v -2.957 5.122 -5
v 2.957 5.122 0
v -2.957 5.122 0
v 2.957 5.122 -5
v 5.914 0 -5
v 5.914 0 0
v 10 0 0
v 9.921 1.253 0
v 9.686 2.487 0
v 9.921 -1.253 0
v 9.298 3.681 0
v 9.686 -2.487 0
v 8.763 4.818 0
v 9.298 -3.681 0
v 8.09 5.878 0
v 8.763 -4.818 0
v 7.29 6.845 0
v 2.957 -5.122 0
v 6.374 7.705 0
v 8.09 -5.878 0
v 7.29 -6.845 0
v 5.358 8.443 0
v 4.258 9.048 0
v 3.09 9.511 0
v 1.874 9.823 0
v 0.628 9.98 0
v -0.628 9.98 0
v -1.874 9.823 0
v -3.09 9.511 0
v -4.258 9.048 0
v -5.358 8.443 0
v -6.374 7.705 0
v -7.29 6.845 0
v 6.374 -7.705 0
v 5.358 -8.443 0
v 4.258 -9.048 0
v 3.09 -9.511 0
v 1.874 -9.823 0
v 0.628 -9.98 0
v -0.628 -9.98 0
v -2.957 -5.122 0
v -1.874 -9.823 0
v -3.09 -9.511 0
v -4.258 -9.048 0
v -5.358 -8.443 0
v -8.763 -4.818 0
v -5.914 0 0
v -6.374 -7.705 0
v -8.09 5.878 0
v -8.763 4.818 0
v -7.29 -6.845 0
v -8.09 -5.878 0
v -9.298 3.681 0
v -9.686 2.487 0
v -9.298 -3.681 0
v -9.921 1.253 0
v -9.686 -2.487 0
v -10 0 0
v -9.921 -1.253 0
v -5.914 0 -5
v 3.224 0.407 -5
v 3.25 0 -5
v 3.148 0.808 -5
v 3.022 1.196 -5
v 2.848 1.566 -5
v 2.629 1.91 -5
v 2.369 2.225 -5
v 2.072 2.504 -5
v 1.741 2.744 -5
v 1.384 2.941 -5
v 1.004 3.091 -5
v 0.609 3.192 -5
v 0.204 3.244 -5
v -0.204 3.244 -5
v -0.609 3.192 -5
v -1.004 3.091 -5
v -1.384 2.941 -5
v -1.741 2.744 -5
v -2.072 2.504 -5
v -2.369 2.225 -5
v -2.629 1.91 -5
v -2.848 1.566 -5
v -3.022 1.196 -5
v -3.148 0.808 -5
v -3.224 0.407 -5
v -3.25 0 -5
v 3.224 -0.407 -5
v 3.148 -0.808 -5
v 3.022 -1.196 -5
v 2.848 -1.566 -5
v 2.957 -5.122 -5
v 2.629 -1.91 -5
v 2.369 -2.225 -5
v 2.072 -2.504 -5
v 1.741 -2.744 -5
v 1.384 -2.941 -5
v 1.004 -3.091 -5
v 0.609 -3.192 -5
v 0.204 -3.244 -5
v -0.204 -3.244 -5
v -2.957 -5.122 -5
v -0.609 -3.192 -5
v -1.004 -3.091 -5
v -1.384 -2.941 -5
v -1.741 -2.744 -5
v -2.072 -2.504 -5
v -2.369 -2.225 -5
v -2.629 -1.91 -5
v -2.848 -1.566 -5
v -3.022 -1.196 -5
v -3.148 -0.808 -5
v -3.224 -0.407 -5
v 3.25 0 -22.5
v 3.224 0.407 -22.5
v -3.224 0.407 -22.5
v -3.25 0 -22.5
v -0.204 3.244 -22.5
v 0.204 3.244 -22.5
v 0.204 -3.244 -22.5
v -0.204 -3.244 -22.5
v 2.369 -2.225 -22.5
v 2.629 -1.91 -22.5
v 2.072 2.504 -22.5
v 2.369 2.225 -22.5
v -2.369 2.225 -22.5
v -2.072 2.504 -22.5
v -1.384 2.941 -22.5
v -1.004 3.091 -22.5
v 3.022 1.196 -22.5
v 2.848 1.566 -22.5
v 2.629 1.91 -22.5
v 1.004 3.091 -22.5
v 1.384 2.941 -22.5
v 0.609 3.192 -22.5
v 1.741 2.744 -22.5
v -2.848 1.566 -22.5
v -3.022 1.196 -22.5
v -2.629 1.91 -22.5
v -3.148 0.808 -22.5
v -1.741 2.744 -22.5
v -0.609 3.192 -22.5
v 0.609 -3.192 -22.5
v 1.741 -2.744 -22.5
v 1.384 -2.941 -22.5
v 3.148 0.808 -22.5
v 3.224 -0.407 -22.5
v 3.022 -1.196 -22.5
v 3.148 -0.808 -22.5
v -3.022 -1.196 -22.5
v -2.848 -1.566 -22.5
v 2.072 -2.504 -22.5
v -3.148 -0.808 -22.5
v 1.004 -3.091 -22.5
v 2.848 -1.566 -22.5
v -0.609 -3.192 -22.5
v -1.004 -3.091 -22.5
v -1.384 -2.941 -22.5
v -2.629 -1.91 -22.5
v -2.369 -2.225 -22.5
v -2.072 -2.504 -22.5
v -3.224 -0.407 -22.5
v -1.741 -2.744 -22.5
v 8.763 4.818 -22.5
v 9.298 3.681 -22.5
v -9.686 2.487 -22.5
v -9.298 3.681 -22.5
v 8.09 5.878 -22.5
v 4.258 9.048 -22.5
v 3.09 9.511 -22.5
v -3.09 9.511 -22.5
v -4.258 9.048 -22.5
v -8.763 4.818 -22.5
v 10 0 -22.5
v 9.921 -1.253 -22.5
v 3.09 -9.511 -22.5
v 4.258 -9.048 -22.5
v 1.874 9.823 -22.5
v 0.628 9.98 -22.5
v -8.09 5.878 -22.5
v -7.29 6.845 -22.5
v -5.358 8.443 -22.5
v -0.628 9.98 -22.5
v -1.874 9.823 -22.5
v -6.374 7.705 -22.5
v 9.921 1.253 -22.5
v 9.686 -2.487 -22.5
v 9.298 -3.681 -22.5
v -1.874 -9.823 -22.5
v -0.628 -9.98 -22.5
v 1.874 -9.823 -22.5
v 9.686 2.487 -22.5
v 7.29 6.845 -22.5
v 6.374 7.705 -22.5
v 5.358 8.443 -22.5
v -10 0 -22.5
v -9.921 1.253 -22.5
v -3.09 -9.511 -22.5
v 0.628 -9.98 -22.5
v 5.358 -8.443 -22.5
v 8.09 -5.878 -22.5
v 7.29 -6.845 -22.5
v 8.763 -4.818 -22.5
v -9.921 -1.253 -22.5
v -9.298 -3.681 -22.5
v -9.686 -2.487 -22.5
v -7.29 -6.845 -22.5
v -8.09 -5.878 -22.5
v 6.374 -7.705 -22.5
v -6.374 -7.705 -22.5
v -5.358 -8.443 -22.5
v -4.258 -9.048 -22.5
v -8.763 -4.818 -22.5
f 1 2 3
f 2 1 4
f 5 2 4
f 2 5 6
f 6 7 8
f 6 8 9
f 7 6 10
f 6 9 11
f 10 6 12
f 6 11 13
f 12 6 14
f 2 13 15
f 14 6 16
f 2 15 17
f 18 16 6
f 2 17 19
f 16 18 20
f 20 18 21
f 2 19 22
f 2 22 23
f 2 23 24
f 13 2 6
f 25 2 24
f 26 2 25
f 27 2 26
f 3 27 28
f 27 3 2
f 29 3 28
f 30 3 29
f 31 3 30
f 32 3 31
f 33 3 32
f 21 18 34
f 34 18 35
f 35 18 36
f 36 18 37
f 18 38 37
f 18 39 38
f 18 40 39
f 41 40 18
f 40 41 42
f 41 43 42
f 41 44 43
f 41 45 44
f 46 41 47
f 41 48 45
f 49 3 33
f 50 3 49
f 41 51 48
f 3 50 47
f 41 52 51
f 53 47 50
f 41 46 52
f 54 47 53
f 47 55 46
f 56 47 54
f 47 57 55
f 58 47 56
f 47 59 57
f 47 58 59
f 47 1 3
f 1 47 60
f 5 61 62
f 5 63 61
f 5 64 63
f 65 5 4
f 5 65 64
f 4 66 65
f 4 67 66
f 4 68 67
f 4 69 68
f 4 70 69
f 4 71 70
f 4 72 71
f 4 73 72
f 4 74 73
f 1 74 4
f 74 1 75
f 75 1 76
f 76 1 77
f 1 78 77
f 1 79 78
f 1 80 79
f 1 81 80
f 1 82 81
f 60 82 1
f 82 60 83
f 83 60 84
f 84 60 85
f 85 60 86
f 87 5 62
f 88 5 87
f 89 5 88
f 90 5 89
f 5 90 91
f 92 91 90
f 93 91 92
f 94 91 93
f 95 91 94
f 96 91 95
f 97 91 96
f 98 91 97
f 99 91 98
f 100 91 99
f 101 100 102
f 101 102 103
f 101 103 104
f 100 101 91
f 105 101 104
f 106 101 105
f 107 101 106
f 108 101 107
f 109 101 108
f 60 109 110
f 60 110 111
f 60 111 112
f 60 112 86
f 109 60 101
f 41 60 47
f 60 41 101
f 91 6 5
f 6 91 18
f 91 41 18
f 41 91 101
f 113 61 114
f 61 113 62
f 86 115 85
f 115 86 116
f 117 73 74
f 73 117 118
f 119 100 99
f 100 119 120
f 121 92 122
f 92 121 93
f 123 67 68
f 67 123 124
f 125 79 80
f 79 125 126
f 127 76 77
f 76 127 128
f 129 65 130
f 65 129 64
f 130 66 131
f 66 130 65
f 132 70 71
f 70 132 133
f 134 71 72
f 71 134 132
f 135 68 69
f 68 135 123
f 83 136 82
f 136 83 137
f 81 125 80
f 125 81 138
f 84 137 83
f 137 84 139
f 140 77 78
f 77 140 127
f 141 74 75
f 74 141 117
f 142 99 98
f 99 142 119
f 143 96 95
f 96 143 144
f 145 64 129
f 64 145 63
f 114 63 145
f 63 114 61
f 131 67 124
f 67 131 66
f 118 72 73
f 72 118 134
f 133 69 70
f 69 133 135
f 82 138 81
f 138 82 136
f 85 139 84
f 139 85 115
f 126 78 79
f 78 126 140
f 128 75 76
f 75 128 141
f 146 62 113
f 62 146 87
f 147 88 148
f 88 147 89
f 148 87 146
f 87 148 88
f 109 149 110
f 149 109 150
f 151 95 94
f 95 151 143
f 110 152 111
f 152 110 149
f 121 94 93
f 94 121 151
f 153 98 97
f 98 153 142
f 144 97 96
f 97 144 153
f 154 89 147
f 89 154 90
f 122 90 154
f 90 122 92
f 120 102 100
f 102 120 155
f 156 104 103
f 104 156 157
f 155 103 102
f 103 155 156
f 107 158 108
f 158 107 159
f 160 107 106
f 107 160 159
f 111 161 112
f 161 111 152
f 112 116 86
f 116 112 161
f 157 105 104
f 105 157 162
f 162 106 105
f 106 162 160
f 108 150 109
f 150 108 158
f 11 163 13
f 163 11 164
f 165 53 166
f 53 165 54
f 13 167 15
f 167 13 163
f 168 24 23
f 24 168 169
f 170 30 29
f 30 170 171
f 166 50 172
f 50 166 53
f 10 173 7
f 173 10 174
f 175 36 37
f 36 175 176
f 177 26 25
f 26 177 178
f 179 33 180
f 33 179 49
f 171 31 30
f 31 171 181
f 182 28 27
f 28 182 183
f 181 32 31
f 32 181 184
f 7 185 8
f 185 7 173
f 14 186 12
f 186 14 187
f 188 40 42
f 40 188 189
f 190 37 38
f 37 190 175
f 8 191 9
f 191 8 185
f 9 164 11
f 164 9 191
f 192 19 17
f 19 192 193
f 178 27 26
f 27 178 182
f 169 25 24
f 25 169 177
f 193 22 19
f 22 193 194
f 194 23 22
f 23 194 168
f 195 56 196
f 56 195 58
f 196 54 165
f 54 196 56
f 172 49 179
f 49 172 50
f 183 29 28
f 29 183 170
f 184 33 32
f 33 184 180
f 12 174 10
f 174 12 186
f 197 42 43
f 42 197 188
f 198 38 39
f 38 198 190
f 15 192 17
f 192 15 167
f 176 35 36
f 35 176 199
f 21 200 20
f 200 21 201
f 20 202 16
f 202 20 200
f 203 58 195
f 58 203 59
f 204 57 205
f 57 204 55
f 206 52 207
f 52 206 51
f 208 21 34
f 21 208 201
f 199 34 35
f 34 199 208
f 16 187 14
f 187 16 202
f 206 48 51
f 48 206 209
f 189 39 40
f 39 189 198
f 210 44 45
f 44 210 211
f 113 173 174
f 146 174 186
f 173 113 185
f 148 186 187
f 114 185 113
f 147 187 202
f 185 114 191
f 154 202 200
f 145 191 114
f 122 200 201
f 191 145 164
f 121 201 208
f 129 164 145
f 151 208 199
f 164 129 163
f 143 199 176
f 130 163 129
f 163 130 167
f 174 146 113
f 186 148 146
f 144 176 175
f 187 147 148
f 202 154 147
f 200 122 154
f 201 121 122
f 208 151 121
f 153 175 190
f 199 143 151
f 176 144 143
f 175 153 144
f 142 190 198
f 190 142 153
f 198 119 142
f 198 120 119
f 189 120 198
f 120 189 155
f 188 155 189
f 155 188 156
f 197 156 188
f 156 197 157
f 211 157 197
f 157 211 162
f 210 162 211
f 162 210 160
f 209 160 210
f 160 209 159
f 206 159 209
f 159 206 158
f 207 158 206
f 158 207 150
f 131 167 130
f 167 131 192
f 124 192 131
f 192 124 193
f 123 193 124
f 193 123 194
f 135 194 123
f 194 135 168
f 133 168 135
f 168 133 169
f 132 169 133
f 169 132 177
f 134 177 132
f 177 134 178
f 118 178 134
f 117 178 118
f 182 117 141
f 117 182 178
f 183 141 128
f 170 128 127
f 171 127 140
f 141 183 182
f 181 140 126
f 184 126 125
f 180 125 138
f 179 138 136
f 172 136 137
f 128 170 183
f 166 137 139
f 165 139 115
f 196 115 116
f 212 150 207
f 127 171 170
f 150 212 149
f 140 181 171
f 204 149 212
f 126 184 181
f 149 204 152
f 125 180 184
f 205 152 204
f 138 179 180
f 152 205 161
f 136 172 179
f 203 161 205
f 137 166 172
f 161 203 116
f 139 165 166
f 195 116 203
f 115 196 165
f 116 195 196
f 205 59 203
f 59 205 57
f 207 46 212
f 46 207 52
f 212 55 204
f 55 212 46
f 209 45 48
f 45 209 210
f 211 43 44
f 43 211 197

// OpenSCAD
$fn = 50;


difference() {
	union() {
		translate(v = [0, 0, -22.5000000000]) {
			cylinder(h = 22.5000000000, r = 10.0000000000);
		}
	}
	union() {
		translate(v = [0, 0, 0]) {
			rotate(a = [0, 0, 0]) {
				difference() {
					union() {
						translate(v = [0, 0, -5]) {
							linear_extrude(height = 5) {
								polygon(points = [[5.9142500000, 0.0000000000], [2.9571250000, 5.1218907443], [-2.9571250000, 5.1218907443], [-5.9142500000, 0.0000000000], [-2.9571250000, -5.1218907443], [2.9571250000, -5.1218907443]]);
							}
						}
					}
					union();
				}
			}
		}
		#translate(v = [0, 0, -100.0000000000]) {
			cylinder(h = 200, r = 3.2500000000);
		}
	}
}
